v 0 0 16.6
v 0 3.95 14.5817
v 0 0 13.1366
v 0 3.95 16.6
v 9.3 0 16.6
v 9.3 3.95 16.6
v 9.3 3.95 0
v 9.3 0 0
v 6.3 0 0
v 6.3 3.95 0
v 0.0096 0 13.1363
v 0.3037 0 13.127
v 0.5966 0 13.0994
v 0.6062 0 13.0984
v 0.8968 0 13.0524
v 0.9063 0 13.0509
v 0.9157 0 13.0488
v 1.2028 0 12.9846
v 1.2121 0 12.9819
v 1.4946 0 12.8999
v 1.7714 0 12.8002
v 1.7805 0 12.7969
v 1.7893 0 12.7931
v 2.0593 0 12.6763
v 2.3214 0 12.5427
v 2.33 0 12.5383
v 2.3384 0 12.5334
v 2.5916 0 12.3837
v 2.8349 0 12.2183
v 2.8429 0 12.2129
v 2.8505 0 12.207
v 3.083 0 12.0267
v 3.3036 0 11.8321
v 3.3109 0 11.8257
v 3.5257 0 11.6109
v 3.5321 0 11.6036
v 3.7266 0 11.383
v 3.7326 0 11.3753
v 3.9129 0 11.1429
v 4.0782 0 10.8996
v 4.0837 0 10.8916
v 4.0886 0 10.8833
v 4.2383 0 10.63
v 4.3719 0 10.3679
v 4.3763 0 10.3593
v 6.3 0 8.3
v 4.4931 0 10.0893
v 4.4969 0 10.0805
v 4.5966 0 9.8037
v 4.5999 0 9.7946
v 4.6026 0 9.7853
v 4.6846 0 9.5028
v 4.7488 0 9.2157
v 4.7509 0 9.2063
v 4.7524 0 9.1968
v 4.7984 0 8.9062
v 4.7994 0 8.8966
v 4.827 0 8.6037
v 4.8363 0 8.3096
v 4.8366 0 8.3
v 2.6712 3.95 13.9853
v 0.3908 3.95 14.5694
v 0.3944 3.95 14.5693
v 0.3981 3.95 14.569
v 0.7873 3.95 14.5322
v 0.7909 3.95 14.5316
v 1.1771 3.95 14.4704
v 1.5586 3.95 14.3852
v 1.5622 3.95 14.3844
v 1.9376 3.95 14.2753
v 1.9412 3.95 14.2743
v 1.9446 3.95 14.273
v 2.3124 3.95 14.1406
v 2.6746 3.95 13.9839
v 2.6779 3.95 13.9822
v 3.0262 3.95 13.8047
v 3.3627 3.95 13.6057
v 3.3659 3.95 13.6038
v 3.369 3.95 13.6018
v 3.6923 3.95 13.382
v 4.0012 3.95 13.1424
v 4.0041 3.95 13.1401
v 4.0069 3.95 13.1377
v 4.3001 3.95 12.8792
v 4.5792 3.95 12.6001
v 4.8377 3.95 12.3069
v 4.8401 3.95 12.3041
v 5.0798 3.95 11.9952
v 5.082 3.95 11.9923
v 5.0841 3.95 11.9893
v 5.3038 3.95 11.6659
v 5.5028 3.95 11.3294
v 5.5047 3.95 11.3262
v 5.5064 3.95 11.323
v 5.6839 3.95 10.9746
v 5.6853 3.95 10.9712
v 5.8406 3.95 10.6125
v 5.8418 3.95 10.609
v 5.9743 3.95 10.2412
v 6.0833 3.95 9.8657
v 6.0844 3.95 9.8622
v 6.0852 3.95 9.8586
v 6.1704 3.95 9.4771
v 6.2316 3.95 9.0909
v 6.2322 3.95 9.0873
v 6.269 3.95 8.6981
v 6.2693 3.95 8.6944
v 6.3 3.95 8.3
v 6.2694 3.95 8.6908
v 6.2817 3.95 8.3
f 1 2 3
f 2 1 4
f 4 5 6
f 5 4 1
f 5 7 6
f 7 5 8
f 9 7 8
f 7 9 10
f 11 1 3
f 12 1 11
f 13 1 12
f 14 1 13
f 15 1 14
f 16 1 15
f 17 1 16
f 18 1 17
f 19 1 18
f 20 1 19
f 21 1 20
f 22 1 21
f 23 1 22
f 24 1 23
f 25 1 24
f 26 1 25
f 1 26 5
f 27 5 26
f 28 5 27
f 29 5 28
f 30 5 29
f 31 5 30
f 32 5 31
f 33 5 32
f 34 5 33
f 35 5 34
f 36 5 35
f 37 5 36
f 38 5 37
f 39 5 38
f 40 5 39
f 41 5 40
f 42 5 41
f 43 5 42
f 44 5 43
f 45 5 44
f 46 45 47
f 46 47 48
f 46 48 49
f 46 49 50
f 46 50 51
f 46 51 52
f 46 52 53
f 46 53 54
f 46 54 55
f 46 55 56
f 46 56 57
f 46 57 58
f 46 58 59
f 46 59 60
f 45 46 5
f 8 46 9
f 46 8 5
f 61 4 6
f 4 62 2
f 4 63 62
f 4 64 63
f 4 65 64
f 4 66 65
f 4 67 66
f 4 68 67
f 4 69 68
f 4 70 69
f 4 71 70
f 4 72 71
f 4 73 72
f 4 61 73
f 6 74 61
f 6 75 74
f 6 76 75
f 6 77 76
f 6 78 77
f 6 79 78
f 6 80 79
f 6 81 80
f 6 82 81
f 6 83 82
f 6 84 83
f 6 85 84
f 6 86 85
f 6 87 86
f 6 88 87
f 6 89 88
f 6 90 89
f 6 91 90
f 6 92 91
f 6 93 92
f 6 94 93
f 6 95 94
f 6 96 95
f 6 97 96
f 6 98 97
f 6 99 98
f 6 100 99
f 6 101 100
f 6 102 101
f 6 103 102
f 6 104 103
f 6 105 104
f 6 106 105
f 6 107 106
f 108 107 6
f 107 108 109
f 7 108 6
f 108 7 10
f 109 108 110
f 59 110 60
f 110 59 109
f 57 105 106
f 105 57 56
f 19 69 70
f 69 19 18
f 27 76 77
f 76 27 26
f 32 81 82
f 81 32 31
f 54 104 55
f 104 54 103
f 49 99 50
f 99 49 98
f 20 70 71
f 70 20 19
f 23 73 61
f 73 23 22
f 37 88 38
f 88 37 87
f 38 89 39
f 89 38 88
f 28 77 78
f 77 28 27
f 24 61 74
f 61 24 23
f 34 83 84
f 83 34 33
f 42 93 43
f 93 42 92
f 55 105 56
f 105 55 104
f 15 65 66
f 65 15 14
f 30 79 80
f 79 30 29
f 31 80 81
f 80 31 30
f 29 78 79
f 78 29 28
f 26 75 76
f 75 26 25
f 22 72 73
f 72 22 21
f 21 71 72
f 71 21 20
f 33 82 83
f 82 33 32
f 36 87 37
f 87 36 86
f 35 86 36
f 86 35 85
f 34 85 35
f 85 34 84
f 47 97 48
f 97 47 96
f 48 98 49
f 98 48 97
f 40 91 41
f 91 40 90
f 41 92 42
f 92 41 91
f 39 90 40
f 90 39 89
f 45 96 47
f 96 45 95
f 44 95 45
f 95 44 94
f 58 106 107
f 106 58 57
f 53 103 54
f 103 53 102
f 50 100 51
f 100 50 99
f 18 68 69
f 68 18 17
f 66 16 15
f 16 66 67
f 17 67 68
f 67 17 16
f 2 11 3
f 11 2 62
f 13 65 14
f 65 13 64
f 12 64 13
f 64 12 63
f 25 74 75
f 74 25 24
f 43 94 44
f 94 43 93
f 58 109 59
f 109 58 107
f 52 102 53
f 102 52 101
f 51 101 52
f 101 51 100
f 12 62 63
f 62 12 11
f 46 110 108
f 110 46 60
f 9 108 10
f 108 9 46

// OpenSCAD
// file: util.scad
module space(size){
  minkowski() {
	children(0);
	cube(size, center=true);
    //sphere(size, center=true,$fn=30);  
  }
}

module pinHole(length){
    PIN_DIAMETER = 3.2;
    rotate([0,90,0]){
      cylinder(d=PIN_DIAMETER,h=length,center=false); //The lip
      translate([0,0,length])
        sphere(d=PIN_DIAMETER);  
    }
}

function coreDiameter() = 12.6;

function coreLipDiameter() = coreDiameter()+2;

function padlockWidth() = 4+10+6+12.6+6+10+4;

function padlockDepth() = 4+5+5+5+5+5+6+18;

function padlockHeight() = 24;

function pin1Depth() = 7.5;
function pin2Depth() = 12.5;
function pin3Depth() = 17.5;
function pin4Depth() = 22.5;
function pin5Depth() = 27.5;
// main file
use <util.scad>

$fn=100;



difference(){
  cube([coreDiameter()/2+3,3.95,coreDiameter()+4]);

  translate([0,4,coreDiameter()/2+2])
    rotate([90,0,0]){
      cylinder(d1=coreDiameter(), d2=coreDiameter()-3,h=4.1);  
  }  
  
  translate([-3,0,-(coreDiameter()+4)/2])
    cube([coreDiameter()/2+3,3.95,coreDiameter()+4]);
}
